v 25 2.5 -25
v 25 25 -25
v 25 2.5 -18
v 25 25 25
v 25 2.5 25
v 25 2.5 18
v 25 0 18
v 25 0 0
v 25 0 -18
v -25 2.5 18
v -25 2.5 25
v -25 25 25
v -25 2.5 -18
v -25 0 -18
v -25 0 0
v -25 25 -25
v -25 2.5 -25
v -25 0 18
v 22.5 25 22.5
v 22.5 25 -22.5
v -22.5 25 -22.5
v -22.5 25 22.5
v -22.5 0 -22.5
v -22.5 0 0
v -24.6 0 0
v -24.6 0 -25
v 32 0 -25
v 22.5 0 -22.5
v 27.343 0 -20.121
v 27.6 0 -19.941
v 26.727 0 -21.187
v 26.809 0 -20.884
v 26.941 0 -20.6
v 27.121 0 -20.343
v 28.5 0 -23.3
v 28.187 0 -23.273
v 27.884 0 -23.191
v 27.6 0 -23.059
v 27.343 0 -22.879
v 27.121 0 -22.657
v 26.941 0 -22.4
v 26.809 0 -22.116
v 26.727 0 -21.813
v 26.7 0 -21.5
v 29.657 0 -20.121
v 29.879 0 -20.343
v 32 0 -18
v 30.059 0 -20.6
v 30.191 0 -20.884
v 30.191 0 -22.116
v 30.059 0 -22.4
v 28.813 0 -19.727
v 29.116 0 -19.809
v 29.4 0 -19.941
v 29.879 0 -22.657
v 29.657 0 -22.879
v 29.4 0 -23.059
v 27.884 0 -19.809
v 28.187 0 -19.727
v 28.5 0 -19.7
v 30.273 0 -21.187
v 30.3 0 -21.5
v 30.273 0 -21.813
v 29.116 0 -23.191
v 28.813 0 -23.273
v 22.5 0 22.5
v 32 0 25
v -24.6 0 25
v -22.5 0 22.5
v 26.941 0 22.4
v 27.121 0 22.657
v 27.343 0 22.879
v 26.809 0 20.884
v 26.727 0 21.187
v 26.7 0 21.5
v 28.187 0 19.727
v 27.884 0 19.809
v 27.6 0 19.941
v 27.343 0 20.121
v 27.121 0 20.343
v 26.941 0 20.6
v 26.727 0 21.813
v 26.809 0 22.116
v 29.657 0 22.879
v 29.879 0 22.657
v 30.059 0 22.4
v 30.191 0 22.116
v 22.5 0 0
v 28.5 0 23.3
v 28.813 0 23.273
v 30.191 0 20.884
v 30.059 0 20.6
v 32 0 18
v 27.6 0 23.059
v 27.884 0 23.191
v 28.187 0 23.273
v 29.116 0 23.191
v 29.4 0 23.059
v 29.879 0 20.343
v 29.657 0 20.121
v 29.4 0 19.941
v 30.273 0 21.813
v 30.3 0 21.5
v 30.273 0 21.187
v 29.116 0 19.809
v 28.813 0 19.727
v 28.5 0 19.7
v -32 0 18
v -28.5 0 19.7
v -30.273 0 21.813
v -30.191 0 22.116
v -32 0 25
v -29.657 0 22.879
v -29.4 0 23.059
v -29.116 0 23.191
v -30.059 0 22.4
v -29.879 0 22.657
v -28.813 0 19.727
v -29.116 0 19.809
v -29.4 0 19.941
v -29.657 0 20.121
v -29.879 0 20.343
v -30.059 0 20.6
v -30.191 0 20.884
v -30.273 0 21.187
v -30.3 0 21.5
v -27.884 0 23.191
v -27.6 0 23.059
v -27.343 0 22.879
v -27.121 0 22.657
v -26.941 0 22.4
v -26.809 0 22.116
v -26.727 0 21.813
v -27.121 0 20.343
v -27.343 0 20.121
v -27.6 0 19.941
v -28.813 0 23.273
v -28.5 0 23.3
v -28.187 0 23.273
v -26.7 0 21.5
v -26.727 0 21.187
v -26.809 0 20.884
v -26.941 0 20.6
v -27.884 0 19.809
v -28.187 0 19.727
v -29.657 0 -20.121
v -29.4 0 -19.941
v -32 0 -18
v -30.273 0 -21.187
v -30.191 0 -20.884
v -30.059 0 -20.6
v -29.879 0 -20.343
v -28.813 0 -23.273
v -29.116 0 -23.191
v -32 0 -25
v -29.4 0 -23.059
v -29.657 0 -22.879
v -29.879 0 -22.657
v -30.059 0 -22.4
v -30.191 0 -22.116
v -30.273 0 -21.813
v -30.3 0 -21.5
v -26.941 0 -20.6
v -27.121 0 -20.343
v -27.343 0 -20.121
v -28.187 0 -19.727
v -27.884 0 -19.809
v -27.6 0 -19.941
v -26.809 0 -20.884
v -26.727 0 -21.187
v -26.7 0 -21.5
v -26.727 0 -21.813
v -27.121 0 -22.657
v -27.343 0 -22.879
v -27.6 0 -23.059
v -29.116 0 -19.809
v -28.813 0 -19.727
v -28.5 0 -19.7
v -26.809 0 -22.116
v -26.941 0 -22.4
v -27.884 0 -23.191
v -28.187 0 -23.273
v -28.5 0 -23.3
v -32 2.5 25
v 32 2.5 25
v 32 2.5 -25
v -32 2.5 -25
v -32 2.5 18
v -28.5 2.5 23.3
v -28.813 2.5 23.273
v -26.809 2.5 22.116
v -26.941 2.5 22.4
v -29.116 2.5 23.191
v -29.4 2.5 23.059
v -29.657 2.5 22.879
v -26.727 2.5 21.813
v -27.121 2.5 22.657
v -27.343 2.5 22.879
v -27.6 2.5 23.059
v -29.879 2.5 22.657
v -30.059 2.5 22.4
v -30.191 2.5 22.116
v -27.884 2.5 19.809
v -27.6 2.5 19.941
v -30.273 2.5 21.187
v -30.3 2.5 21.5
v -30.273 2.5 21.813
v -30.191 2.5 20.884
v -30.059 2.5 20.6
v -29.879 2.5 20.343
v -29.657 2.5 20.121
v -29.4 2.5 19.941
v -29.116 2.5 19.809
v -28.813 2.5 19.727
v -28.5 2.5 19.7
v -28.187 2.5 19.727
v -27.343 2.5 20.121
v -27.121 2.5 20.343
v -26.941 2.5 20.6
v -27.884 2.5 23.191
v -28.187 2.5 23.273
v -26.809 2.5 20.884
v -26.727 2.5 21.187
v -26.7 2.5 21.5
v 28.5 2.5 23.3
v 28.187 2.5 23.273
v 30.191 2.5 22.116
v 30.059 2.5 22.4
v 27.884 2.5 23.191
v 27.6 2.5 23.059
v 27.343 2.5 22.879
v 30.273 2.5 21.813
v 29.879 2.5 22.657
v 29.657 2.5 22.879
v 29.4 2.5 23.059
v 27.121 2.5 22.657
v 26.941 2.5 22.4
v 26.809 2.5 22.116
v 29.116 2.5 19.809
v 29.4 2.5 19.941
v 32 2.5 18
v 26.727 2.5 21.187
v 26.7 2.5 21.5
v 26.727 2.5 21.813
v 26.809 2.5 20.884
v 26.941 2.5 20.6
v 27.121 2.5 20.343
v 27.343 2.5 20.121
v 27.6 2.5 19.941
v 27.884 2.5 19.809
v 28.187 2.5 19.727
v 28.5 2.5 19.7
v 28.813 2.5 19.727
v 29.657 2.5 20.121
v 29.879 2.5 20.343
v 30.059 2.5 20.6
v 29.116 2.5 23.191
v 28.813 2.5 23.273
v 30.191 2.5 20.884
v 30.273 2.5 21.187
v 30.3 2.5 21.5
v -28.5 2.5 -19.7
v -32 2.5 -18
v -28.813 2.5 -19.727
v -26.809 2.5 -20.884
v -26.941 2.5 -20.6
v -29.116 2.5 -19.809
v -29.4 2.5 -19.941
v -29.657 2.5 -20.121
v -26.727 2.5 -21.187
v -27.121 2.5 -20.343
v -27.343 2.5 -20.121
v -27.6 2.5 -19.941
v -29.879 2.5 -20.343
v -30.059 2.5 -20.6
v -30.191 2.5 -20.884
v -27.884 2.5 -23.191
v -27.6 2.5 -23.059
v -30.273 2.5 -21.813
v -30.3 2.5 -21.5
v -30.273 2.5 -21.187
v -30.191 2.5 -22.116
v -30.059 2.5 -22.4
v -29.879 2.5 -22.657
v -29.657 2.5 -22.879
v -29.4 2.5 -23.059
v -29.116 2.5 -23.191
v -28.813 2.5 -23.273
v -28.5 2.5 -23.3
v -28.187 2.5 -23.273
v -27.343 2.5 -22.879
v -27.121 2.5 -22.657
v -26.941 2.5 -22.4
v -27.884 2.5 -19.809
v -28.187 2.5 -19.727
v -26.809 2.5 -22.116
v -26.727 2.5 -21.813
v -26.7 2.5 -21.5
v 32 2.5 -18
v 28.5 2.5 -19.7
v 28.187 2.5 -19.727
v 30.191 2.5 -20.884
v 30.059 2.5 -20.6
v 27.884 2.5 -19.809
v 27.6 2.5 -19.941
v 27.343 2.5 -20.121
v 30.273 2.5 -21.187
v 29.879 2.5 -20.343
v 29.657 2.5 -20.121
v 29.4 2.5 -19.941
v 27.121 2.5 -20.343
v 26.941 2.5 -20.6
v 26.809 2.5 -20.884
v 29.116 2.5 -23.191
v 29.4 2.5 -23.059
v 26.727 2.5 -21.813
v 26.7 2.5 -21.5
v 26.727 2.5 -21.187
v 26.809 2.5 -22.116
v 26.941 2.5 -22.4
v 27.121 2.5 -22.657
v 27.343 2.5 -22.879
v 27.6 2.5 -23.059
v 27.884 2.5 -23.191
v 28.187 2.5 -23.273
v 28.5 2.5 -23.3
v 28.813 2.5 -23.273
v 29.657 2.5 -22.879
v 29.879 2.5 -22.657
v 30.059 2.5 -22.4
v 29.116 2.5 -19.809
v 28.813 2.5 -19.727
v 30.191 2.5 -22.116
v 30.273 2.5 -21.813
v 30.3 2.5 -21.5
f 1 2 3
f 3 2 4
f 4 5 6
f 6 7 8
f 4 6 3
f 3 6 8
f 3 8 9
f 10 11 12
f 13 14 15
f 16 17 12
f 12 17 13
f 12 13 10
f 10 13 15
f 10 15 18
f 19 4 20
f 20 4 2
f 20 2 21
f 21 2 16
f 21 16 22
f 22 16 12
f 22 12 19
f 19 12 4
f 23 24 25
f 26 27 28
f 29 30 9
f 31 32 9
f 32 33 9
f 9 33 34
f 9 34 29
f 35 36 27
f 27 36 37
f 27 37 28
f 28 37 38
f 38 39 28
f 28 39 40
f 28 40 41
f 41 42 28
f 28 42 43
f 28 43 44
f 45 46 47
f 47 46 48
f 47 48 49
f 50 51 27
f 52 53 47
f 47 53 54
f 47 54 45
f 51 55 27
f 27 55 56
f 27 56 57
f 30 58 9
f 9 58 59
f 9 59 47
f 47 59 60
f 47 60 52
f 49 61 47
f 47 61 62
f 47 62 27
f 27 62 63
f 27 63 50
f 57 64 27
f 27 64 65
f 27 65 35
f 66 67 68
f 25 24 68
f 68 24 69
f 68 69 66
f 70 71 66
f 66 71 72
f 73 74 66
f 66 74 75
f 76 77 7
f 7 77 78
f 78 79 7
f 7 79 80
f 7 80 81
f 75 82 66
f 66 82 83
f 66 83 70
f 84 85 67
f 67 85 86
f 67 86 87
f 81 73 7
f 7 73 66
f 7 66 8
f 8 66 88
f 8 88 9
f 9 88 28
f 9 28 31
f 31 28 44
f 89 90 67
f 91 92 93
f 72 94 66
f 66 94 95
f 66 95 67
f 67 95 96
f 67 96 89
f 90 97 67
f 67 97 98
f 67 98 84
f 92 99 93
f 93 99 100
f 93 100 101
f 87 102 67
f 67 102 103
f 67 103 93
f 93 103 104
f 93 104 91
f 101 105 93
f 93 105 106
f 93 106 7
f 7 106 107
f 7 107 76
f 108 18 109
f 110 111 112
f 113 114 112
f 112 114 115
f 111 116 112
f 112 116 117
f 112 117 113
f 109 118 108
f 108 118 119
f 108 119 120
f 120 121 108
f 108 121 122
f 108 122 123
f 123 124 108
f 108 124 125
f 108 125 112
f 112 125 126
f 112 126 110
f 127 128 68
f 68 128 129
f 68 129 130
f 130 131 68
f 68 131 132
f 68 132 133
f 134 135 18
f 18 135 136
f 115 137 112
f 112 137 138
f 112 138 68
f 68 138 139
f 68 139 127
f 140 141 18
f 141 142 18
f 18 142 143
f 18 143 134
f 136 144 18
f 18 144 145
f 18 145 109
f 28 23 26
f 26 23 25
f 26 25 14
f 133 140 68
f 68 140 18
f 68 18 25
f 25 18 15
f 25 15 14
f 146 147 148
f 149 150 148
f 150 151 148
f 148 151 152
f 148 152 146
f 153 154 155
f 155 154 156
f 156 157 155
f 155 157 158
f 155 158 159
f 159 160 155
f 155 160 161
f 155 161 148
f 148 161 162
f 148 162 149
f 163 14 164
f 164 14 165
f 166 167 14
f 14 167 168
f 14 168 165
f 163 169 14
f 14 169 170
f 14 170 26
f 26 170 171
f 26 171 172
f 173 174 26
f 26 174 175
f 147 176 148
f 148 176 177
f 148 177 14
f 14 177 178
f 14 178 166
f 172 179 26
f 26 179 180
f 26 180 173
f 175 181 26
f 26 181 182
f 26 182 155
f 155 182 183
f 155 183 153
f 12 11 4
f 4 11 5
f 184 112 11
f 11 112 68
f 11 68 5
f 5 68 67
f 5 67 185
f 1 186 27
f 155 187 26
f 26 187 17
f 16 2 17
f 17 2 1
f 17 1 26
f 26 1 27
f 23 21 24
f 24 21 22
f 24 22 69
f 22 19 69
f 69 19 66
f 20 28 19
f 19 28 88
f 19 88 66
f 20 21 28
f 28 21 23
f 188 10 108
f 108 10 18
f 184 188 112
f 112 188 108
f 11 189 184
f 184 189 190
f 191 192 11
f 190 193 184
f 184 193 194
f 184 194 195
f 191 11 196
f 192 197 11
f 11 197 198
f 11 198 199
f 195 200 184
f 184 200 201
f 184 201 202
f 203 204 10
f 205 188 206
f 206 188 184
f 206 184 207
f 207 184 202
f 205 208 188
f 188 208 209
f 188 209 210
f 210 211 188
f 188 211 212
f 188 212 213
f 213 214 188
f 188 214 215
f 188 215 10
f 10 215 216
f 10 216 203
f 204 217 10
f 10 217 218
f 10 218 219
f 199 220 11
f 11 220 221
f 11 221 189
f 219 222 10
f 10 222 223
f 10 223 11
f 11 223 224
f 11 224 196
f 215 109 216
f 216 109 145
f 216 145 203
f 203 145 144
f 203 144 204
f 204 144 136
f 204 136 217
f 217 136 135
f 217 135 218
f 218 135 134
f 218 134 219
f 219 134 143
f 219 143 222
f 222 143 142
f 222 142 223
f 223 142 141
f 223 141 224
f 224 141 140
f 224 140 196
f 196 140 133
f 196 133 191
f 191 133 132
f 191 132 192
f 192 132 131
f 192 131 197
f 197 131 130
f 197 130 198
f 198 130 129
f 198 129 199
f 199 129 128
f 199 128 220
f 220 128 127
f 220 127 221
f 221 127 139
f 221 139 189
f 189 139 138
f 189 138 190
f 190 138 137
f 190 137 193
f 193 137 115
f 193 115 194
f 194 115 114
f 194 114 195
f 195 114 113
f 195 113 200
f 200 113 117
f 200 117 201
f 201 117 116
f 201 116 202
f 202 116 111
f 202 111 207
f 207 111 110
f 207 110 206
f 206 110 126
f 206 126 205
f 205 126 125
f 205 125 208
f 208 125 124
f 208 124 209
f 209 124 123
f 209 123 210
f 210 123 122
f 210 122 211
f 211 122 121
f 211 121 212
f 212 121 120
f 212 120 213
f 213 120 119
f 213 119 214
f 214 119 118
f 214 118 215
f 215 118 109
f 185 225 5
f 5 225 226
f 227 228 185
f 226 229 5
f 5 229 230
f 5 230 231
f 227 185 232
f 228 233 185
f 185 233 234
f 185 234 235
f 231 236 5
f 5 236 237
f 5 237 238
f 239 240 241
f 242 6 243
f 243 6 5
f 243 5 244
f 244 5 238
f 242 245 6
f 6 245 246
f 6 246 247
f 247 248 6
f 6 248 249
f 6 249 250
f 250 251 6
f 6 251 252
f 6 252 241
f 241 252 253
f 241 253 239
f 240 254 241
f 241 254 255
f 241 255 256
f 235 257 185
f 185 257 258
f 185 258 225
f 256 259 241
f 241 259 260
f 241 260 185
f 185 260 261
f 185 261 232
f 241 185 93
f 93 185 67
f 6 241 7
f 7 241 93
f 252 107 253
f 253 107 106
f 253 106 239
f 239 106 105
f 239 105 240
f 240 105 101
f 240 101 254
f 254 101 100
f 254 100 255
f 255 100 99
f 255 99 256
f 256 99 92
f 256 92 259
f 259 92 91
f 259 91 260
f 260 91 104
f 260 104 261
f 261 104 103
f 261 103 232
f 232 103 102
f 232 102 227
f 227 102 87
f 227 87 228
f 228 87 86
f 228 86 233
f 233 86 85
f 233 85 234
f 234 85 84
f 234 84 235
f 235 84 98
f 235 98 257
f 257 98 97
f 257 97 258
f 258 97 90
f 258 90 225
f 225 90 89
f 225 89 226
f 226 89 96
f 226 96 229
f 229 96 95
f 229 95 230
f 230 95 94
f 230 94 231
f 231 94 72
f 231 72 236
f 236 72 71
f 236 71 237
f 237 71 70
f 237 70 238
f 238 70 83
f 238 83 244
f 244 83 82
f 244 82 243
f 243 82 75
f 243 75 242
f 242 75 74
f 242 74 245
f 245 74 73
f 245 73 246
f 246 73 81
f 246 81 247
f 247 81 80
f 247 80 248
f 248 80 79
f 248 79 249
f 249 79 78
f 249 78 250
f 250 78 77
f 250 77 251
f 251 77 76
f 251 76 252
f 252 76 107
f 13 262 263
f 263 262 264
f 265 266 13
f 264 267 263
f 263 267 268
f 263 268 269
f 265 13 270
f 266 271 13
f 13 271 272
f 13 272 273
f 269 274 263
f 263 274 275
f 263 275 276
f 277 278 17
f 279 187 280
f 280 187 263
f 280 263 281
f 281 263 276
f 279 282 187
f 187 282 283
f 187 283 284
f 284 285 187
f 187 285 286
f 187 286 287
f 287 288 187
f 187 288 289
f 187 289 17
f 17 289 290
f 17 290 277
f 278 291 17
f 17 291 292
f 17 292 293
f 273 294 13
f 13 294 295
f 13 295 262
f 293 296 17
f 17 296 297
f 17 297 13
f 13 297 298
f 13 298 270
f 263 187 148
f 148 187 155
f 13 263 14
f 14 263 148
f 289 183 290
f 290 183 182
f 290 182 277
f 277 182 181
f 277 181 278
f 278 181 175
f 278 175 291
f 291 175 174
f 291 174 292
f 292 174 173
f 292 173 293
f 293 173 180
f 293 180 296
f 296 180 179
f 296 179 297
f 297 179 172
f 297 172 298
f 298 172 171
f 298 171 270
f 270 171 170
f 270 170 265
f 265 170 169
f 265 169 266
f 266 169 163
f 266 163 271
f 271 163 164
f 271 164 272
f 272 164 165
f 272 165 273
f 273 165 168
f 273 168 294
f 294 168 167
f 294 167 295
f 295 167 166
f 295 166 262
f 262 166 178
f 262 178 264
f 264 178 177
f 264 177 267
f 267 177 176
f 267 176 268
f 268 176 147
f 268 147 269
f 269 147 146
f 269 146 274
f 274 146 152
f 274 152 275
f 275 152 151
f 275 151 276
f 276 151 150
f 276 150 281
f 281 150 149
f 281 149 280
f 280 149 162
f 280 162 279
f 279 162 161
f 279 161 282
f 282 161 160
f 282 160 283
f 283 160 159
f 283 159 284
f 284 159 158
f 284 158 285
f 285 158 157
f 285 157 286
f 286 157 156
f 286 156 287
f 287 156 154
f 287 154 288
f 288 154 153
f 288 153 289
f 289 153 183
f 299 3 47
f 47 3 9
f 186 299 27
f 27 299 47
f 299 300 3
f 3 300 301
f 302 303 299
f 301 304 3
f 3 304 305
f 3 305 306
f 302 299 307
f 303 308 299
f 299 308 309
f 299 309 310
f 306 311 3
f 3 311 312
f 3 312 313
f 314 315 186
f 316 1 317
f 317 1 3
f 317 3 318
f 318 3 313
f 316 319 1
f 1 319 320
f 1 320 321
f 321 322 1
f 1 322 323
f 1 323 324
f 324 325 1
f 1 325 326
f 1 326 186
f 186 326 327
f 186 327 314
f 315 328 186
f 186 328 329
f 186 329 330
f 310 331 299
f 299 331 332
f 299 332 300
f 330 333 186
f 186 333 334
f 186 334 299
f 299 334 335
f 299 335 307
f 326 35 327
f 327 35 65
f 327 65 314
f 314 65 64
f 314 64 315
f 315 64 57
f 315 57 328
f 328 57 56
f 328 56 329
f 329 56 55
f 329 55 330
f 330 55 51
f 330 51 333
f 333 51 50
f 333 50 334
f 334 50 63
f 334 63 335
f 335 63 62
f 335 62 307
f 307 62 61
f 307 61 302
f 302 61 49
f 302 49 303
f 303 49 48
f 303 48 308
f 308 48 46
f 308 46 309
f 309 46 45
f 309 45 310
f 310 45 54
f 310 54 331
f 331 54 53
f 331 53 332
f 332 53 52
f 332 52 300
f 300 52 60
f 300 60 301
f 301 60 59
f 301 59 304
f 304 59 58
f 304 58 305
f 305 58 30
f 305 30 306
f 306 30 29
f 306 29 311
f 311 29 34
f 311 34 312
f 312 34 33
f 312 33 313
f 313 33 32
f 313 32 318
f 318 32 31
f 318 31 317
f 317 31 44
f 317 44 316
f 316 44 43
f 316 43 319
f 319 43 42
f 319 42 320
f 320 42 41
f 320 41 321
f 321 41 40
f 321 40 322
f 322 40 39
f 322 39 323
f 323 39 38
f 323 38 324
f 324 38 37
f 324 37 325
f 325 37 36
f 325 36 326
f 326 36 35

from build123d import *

# Parameters (mm, degrees)
SKIZZE1_W                       = 50
SKIZZE1_H                       = 50
SKIZZE1_W_2                     = 45
SKIZZE1_H_2                     = 45
AUFSATZ_LINEAR_AUSTRAGEN1_DEPTH = 25
SKIZZE2_W                       = 7
SKIZZE2_H                       = 7
SKIZZE2_R                       = 1.8
AUFSATZ_LINEAR_AUSTRAGEN2_DEPTH = 2.5
SPIEGELN2_COPY_1_SKETCH_W       = 7
SPIEGELN2_COPY_1_SKETCH_H       = 7
SPIEGELN2_COPY_1_SKETCH_R       = 1.8
SPIEGELN2_COPY_1_DEPTH          = 2.5


with BuildPart() as part:
    # Skizze1 → Aufsatz-Linear austragen1 (new body)
    with BuildSketch(Plane(origin=(0, 0, 0), x_dir=(1, 0, 0), z_dir=(0, 1, 0))):
        Rectangle(SKIZZE1_W, SKIZZE1_H)
        Rectangle(SKIZZE1_W_2, SKIZZE1_H_2, mode=Mode.SUBTRACT)
    extrude(amount=AUFSATZ_LINEAR_AUSTRAGEN1_DEPTH)

    # Skizze2 → Aufsatz-Linear austragen2 (add)
    with BuildSketch(Plane.XZ):
        with Locations((-28.5, 21.5)):
            Rectangle(SKIZZE2_W, SKIZZE2_H)
        with Locations((-28.5, 21.5)):
            Circle(SKIZZE2_R, mode=Mode.SUBTRACT)
    aufsatz_linear_austragen2 = extrude(amount=-AUFSATZ_LINEAR_AUSTRAGEN2_DEPTH)

    # Spiegeln1: Aufsatz-Linear austragen2 across plane
    add(aufsatz_linear_austragen2.mirror(Plane(origin=(0, 0, 0), x_dir=(0, 0, 1), z_dir=(1, 0, 0))))

    # Spiegeln2: Aufsatz-Linear austragen2 across plane
    add(aufsatz_linear_austragen2.mirror(Plane.XY))

    # Spiegeln2 copy 1 sketch → Spiegeln2 copy 1 (add)
    with BuildSketch(Plane(origin=(0, 0, 0), x_dir=(-1, 0, 0), z_dir=(0, -1, 0))):
        with Locations((-28.5, 21.5)):
            Rectangle(SPIEGELN2_COPY_1_SKETCH_W, SPIEGELN2_COPY_1_SKETCH_H)
        with Locations((-28.5, 21.5)):
            Circle(SPIEGELN2_COPY_1_SKETCH_R, mode=Mode.SUBTRACT)
    extrude(amount=-SPIEGELN2_COPY_1_DEPTH)


solid = part.part
